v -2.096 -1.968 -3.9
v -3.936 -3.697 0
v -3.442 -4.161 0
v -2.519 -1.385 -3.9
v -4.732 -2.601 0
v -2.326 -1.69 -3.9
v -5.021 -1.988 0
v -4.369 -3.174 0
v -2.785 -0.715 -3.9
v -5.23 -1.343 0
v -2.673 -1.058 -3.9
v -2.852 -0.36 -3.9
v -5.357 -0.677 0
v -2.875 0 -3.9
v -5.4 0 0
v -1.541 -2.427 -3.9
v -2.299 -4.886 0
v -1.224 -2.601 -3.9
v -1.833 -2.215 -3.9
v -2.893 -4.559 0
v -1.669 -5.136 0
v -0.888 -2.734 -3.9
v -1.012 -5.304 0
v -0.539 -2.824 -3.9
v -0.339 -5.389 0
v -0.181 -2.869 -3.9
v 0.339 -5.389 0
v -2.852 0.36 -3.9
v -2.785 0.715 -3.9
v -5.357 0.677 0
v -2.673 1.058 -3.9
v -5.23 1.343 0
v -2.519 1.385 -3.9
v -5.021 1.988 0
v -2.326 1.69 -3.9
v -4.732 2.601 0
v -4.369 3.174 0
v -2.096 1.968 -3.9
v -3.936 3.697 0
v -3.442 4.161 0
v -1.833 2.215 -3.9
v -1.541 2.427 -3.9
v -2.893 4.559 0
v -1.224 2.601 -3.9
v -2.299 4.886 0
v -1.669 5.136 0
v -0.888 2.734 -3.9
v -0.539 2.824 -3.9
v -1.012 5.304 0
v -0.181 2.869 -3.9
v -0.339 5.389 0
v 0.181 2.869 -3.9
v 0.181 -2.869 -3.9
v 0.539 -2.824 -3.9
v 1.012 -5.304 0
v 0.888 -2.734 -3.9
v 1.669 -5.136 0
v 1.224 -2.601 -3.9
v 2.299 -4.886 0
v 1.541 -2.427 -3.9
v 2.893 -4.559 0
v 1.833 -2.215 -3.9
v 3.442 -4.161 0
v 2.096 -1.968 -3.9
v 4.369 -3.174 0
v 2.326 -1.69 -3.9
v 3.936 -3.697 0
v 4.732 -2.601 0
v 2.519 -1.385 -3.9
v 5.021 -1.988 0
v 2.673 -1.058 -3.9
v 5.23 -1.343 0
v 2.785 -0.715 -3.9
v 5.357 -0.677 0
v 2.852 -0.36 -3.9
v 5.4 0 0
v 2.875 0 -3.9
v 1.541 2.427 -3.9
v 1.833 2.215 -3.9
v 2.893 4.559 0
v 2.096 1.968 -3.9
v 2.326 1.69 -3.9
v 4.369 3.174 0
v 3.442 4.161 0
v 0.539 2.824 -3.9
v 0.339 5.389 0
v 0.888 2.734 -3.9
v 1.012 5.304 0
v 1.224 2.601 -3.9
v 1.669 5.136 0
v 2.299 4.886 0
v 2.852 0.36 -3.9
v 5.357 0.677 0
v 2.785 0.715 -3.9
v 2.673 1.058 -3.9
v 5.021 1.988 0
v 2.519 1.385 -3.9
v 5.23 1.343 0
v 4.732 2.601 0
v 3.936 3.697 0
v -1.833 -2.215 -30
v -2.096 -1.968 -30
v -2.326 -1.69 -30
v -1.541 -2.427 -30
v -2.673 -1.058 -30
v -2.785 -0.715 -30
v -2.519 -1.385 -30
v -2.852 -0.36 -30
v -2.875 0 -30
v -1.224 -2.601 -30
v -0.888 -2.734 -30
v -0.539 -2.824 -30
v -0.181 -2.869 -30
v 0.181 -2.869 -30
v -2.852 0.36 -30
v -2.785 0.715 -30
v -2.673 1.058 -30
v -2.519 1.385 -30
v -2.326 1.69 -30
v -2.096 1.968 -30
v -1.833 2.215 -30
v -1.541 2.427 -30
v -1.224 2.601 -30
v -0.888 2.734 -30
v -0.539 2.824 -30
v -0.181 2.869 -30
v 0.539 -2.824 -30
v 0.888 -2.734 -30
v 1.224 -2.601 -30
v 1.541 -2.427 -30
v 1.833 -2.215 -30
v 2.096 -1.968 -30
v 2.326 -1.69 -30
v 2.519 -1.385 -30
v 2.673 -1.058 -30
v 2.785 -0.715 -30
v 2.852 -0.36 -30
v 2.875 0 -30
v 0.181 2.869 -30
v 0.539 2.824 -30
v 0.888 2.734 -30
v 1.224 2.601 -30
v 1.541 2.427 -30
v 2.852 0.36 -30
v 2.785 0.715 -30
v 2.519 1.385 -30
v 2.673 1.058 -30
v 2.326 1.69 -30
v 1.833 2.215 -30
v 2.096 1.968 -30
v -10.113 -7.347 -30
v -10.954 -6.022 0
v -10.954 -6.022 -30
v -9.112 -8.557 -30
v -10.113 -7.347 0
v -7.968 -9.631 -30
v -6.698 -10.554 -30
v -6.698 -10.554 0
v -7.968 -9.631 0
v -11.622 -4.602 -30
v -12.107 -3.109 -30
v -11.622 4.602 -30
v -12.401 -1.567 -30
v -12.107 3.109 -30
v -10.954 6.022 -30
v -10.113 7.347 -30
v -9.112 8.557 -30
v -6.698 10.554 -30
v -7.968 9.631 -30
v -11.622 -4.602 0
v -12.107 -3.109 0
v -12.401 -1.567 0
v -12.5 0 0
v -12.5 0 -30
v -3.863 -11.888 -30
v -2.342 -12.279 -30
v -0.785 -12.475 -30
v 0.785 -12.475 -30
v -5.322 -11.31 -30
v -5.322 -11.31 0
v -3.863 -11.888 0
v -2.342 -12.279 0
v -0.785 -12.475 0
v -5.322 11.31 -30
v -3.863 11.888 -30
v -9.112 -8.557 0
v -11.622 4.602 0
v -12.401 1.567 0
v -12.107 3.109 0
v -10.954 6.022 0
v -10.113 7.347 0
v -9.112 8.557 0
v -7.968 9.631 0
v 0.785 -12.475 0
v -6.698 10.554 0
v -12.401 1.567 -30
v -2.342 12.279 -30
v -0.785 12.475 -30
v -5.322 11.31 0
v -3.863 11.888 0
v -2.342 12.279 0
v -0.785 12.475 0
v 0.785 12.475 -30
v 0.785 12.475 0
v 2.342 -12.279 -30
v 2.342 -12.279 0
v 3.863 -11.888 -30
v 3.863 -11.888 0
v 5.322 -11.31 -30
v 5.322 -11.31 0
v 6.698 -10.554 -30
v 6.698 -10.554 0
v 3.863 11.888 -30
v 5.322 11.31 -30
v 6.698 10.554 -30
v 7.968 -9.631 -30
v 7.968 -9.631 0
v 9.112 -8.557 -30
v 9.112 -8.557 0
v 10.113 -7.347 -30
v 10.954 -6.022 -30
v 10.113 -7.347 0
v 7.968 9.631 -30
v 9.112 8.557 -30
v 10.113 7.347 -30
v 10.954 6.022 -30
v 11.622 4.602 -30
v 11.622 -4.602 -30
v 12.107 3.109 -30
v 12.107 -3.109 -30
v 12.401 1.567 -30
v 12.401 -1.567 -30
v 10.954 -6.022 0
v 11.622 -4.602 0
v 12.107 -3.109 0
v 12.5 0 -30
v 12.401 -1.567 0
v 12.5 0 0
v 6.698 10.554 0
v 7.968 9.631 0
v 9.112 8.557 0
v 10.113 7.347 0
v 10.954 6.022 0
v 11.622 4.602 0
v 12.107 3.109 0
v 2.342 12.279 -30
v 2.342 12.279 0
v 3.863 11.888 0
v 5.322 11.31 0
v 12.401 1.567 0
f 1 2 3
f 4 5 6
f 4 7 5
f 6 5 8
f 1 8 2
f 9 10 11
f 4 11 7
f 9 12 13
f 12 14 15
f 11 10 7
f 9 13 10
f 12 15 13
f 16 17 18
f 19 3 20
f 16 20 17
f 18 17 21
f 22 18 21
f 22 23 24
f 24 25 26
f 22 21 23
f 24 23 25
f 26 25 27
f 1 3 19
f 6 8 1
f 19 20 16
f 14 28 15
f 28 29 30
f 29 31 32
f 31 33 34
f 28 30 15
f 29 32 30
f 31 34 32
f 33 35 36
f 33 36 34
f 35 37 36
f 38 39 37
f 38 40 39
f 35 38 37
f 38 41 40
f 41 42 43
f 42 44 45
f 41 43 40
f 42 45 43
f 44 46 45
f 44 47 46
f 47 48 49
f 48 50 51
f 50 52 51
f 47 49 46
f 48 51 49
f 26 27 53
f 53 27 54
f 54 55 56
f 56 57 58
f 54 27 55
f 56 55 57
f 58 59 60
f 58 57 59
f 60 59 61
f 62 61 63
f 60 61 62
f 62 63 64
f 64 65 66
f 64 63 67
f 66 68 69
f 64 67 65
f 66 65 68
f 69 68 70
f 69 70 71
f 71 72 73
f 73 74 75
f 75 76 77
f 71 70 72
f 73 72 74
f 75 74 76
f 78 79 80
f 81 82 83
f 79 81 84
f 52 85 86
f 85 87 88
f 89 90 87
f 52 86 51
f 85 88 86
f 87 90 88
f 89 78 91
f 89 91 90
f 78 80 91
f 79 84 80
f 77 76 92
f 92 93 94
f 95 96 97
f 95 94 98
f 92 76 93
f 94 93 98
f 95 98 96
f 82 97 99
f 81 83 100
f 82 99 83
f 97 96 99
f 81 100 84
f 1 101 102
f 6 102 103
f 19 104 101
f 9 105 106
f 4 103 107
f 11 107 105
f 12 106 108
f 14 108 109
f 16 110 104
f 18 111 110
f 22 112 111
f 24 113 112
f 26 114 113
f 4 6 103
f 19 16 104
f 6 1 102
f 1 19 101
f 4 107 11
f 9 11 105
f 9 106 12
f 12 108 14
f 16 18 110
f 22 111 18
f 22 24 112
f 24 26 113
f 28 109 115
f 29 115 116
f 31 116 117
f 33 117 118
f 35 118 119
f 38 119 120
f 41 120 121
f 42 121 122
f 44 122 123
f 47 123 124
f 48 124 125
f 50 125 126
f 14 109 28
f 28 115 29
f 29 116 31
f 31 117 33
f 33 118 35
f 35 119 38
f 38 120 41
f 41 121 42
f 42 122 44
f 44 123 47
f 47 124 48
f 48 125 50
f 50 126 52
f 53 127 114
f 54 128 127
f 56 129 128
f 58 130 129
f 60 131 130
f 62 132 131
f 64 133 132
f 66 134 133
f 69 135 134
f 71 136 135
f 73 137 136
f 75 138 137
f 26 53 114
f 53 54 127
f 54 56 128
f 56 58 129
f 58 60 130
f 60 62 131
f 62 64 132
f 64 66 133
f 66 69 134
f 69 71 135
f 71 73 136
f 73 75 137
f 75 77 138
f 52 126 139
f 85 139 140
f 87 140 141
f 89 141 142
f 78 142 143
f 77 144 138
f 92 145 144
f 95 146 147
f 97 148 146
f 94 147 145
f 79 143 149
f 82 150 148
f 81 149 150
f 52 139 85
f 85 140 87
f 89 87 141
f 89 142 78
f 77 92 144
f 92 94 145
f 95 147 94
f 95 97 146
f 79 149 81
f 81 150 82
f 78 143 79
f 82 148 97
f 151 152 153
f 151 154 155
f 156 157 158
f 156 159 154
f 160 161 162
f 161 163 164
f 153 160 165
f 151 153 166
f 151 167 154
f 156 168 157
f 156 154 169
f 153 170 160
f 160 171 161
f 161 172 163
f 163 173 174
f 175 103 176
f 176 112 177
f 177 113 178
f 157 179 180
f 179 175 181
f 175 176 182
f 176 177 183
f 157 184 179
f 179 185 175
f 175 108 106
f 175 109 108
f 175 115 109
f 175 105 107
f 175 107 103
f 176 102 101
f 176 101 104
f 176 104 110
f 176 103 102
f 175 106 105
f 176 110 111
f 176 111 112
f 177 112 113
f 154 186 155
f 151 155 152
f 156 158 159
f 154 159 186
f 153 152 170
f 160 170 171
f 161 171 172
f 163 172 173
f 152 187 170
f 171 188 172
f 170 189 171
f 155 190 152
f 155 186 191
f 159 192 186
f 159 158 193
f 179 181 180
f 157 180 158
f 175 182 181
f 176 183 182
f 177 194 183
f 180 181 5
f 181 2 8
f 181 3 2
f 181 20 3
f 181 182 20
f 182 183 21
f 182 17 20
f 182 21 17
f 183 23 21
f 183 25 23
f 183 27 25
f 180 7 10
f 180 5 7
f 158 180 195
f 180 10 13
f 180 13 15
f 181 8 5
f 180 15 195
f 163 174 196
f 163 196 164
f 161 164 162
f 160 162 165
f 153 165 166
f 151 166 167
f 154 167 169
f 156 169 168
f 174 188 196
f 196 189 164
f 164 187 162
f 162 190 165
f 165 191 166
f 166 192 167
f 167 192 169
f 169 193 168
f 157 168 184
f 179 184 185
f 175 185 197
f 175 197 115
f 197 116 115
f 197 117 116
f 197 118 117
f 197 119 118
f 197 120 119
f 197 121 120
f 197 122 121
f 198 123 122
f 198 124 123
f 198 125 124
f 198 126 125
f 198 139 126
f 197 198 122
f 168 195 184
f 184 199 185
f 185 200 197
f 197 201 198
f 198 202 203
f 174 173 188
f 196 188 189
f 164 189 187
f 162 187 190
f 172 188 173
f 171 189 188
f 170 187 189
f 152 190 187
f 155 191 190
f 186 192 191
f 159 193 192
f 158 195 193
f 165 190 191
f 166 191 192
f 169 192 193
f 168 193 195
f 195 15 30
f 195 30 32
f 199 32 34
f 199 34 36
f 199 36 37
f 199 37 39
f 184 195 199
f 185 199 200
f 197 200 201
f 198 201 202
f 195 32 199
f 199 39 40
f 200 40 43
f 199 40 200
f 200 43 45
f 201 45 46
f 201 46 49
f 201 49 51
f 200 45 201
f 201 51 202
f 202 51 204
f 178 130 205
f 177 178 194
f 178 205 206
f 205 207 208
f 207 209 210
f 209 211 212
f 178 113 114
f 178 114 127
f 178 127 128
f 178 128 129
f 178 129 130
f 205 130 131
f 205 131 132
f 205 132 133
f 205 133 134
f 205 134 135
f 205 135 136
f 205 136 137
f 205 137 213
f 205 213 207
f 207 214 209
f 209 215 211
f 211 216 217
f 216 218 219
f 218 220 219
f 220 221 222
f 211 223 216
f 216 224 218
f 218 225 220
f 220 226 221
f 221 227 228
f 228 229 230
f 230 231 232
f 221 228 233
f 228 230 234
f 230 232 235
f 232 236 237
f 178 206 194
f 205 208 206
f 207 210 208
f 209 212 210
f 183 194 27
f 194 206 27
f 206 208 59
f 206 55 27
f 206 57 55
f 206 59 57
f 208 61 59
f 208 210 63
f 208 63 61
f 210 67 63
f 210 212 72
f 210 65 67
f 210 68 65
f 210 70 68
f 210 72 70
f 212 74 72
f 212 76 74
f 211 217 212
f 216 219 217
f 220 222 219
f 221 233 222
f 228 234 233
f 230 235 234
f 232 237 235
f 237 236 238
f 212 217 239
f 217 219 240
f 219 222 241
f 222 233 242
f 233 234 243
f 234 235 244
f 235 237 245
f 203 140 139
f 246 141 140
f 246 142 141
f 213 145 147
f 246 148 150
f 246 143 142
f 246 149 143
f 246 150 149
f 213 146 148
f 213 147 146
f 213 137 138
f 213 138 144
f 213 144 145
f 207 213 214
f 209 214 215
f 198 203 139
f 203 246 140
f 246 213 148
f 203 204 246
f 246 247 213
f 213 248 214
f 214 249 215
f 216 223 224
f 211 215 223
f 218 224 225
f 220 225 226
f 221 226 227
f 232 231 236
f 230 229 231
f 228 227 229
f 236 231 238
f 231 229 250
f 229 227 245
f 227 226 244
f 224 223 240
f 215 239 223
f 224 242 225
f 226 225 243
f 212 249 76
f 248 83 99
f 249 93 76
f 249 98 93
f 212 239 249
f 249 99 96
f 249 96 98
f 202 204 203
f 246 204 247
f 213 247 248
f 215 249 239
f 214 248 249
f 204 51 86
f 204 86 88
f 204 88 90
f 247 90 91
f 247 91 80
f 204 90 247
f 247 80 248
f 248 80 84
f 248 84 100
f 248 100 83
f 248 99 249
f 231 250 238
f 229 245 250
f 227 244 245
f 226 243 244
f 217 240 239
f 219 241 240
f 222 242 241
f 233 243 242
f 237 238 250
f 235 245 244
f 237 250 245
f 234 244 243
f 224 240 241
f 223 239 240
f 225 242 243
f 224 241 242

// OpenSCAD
$fn = 50;

difference() {
	union() {
		translate(v = [0, 0, -30.0]) {
			cylinder(h = 30, r = 12.5);
		}
	}
	union() {
		translate(v = [0, 0, 0]) {
			rotate(a = [0, 0, 0]) {
				difference() {
					union() {
						translate(v = [0, 0, -33.0]) {
							cylinder(h = 33, r = 2.6);
						}
						translate(v = [0, 0, -3.9]) {
							cylinder(h = 3.9, r1 = 2.875, r2 = 5.4);
						}
						translate(v = [0, 0, -33.0]) {
							cylinder(h = 33, r = 2.875);
						}
						translate(v = [0, 0, -33.0]) {
							cylinder(h = 33, r = 2.6);
						}
					}
					union();
				}
			}
		}
	}
}
